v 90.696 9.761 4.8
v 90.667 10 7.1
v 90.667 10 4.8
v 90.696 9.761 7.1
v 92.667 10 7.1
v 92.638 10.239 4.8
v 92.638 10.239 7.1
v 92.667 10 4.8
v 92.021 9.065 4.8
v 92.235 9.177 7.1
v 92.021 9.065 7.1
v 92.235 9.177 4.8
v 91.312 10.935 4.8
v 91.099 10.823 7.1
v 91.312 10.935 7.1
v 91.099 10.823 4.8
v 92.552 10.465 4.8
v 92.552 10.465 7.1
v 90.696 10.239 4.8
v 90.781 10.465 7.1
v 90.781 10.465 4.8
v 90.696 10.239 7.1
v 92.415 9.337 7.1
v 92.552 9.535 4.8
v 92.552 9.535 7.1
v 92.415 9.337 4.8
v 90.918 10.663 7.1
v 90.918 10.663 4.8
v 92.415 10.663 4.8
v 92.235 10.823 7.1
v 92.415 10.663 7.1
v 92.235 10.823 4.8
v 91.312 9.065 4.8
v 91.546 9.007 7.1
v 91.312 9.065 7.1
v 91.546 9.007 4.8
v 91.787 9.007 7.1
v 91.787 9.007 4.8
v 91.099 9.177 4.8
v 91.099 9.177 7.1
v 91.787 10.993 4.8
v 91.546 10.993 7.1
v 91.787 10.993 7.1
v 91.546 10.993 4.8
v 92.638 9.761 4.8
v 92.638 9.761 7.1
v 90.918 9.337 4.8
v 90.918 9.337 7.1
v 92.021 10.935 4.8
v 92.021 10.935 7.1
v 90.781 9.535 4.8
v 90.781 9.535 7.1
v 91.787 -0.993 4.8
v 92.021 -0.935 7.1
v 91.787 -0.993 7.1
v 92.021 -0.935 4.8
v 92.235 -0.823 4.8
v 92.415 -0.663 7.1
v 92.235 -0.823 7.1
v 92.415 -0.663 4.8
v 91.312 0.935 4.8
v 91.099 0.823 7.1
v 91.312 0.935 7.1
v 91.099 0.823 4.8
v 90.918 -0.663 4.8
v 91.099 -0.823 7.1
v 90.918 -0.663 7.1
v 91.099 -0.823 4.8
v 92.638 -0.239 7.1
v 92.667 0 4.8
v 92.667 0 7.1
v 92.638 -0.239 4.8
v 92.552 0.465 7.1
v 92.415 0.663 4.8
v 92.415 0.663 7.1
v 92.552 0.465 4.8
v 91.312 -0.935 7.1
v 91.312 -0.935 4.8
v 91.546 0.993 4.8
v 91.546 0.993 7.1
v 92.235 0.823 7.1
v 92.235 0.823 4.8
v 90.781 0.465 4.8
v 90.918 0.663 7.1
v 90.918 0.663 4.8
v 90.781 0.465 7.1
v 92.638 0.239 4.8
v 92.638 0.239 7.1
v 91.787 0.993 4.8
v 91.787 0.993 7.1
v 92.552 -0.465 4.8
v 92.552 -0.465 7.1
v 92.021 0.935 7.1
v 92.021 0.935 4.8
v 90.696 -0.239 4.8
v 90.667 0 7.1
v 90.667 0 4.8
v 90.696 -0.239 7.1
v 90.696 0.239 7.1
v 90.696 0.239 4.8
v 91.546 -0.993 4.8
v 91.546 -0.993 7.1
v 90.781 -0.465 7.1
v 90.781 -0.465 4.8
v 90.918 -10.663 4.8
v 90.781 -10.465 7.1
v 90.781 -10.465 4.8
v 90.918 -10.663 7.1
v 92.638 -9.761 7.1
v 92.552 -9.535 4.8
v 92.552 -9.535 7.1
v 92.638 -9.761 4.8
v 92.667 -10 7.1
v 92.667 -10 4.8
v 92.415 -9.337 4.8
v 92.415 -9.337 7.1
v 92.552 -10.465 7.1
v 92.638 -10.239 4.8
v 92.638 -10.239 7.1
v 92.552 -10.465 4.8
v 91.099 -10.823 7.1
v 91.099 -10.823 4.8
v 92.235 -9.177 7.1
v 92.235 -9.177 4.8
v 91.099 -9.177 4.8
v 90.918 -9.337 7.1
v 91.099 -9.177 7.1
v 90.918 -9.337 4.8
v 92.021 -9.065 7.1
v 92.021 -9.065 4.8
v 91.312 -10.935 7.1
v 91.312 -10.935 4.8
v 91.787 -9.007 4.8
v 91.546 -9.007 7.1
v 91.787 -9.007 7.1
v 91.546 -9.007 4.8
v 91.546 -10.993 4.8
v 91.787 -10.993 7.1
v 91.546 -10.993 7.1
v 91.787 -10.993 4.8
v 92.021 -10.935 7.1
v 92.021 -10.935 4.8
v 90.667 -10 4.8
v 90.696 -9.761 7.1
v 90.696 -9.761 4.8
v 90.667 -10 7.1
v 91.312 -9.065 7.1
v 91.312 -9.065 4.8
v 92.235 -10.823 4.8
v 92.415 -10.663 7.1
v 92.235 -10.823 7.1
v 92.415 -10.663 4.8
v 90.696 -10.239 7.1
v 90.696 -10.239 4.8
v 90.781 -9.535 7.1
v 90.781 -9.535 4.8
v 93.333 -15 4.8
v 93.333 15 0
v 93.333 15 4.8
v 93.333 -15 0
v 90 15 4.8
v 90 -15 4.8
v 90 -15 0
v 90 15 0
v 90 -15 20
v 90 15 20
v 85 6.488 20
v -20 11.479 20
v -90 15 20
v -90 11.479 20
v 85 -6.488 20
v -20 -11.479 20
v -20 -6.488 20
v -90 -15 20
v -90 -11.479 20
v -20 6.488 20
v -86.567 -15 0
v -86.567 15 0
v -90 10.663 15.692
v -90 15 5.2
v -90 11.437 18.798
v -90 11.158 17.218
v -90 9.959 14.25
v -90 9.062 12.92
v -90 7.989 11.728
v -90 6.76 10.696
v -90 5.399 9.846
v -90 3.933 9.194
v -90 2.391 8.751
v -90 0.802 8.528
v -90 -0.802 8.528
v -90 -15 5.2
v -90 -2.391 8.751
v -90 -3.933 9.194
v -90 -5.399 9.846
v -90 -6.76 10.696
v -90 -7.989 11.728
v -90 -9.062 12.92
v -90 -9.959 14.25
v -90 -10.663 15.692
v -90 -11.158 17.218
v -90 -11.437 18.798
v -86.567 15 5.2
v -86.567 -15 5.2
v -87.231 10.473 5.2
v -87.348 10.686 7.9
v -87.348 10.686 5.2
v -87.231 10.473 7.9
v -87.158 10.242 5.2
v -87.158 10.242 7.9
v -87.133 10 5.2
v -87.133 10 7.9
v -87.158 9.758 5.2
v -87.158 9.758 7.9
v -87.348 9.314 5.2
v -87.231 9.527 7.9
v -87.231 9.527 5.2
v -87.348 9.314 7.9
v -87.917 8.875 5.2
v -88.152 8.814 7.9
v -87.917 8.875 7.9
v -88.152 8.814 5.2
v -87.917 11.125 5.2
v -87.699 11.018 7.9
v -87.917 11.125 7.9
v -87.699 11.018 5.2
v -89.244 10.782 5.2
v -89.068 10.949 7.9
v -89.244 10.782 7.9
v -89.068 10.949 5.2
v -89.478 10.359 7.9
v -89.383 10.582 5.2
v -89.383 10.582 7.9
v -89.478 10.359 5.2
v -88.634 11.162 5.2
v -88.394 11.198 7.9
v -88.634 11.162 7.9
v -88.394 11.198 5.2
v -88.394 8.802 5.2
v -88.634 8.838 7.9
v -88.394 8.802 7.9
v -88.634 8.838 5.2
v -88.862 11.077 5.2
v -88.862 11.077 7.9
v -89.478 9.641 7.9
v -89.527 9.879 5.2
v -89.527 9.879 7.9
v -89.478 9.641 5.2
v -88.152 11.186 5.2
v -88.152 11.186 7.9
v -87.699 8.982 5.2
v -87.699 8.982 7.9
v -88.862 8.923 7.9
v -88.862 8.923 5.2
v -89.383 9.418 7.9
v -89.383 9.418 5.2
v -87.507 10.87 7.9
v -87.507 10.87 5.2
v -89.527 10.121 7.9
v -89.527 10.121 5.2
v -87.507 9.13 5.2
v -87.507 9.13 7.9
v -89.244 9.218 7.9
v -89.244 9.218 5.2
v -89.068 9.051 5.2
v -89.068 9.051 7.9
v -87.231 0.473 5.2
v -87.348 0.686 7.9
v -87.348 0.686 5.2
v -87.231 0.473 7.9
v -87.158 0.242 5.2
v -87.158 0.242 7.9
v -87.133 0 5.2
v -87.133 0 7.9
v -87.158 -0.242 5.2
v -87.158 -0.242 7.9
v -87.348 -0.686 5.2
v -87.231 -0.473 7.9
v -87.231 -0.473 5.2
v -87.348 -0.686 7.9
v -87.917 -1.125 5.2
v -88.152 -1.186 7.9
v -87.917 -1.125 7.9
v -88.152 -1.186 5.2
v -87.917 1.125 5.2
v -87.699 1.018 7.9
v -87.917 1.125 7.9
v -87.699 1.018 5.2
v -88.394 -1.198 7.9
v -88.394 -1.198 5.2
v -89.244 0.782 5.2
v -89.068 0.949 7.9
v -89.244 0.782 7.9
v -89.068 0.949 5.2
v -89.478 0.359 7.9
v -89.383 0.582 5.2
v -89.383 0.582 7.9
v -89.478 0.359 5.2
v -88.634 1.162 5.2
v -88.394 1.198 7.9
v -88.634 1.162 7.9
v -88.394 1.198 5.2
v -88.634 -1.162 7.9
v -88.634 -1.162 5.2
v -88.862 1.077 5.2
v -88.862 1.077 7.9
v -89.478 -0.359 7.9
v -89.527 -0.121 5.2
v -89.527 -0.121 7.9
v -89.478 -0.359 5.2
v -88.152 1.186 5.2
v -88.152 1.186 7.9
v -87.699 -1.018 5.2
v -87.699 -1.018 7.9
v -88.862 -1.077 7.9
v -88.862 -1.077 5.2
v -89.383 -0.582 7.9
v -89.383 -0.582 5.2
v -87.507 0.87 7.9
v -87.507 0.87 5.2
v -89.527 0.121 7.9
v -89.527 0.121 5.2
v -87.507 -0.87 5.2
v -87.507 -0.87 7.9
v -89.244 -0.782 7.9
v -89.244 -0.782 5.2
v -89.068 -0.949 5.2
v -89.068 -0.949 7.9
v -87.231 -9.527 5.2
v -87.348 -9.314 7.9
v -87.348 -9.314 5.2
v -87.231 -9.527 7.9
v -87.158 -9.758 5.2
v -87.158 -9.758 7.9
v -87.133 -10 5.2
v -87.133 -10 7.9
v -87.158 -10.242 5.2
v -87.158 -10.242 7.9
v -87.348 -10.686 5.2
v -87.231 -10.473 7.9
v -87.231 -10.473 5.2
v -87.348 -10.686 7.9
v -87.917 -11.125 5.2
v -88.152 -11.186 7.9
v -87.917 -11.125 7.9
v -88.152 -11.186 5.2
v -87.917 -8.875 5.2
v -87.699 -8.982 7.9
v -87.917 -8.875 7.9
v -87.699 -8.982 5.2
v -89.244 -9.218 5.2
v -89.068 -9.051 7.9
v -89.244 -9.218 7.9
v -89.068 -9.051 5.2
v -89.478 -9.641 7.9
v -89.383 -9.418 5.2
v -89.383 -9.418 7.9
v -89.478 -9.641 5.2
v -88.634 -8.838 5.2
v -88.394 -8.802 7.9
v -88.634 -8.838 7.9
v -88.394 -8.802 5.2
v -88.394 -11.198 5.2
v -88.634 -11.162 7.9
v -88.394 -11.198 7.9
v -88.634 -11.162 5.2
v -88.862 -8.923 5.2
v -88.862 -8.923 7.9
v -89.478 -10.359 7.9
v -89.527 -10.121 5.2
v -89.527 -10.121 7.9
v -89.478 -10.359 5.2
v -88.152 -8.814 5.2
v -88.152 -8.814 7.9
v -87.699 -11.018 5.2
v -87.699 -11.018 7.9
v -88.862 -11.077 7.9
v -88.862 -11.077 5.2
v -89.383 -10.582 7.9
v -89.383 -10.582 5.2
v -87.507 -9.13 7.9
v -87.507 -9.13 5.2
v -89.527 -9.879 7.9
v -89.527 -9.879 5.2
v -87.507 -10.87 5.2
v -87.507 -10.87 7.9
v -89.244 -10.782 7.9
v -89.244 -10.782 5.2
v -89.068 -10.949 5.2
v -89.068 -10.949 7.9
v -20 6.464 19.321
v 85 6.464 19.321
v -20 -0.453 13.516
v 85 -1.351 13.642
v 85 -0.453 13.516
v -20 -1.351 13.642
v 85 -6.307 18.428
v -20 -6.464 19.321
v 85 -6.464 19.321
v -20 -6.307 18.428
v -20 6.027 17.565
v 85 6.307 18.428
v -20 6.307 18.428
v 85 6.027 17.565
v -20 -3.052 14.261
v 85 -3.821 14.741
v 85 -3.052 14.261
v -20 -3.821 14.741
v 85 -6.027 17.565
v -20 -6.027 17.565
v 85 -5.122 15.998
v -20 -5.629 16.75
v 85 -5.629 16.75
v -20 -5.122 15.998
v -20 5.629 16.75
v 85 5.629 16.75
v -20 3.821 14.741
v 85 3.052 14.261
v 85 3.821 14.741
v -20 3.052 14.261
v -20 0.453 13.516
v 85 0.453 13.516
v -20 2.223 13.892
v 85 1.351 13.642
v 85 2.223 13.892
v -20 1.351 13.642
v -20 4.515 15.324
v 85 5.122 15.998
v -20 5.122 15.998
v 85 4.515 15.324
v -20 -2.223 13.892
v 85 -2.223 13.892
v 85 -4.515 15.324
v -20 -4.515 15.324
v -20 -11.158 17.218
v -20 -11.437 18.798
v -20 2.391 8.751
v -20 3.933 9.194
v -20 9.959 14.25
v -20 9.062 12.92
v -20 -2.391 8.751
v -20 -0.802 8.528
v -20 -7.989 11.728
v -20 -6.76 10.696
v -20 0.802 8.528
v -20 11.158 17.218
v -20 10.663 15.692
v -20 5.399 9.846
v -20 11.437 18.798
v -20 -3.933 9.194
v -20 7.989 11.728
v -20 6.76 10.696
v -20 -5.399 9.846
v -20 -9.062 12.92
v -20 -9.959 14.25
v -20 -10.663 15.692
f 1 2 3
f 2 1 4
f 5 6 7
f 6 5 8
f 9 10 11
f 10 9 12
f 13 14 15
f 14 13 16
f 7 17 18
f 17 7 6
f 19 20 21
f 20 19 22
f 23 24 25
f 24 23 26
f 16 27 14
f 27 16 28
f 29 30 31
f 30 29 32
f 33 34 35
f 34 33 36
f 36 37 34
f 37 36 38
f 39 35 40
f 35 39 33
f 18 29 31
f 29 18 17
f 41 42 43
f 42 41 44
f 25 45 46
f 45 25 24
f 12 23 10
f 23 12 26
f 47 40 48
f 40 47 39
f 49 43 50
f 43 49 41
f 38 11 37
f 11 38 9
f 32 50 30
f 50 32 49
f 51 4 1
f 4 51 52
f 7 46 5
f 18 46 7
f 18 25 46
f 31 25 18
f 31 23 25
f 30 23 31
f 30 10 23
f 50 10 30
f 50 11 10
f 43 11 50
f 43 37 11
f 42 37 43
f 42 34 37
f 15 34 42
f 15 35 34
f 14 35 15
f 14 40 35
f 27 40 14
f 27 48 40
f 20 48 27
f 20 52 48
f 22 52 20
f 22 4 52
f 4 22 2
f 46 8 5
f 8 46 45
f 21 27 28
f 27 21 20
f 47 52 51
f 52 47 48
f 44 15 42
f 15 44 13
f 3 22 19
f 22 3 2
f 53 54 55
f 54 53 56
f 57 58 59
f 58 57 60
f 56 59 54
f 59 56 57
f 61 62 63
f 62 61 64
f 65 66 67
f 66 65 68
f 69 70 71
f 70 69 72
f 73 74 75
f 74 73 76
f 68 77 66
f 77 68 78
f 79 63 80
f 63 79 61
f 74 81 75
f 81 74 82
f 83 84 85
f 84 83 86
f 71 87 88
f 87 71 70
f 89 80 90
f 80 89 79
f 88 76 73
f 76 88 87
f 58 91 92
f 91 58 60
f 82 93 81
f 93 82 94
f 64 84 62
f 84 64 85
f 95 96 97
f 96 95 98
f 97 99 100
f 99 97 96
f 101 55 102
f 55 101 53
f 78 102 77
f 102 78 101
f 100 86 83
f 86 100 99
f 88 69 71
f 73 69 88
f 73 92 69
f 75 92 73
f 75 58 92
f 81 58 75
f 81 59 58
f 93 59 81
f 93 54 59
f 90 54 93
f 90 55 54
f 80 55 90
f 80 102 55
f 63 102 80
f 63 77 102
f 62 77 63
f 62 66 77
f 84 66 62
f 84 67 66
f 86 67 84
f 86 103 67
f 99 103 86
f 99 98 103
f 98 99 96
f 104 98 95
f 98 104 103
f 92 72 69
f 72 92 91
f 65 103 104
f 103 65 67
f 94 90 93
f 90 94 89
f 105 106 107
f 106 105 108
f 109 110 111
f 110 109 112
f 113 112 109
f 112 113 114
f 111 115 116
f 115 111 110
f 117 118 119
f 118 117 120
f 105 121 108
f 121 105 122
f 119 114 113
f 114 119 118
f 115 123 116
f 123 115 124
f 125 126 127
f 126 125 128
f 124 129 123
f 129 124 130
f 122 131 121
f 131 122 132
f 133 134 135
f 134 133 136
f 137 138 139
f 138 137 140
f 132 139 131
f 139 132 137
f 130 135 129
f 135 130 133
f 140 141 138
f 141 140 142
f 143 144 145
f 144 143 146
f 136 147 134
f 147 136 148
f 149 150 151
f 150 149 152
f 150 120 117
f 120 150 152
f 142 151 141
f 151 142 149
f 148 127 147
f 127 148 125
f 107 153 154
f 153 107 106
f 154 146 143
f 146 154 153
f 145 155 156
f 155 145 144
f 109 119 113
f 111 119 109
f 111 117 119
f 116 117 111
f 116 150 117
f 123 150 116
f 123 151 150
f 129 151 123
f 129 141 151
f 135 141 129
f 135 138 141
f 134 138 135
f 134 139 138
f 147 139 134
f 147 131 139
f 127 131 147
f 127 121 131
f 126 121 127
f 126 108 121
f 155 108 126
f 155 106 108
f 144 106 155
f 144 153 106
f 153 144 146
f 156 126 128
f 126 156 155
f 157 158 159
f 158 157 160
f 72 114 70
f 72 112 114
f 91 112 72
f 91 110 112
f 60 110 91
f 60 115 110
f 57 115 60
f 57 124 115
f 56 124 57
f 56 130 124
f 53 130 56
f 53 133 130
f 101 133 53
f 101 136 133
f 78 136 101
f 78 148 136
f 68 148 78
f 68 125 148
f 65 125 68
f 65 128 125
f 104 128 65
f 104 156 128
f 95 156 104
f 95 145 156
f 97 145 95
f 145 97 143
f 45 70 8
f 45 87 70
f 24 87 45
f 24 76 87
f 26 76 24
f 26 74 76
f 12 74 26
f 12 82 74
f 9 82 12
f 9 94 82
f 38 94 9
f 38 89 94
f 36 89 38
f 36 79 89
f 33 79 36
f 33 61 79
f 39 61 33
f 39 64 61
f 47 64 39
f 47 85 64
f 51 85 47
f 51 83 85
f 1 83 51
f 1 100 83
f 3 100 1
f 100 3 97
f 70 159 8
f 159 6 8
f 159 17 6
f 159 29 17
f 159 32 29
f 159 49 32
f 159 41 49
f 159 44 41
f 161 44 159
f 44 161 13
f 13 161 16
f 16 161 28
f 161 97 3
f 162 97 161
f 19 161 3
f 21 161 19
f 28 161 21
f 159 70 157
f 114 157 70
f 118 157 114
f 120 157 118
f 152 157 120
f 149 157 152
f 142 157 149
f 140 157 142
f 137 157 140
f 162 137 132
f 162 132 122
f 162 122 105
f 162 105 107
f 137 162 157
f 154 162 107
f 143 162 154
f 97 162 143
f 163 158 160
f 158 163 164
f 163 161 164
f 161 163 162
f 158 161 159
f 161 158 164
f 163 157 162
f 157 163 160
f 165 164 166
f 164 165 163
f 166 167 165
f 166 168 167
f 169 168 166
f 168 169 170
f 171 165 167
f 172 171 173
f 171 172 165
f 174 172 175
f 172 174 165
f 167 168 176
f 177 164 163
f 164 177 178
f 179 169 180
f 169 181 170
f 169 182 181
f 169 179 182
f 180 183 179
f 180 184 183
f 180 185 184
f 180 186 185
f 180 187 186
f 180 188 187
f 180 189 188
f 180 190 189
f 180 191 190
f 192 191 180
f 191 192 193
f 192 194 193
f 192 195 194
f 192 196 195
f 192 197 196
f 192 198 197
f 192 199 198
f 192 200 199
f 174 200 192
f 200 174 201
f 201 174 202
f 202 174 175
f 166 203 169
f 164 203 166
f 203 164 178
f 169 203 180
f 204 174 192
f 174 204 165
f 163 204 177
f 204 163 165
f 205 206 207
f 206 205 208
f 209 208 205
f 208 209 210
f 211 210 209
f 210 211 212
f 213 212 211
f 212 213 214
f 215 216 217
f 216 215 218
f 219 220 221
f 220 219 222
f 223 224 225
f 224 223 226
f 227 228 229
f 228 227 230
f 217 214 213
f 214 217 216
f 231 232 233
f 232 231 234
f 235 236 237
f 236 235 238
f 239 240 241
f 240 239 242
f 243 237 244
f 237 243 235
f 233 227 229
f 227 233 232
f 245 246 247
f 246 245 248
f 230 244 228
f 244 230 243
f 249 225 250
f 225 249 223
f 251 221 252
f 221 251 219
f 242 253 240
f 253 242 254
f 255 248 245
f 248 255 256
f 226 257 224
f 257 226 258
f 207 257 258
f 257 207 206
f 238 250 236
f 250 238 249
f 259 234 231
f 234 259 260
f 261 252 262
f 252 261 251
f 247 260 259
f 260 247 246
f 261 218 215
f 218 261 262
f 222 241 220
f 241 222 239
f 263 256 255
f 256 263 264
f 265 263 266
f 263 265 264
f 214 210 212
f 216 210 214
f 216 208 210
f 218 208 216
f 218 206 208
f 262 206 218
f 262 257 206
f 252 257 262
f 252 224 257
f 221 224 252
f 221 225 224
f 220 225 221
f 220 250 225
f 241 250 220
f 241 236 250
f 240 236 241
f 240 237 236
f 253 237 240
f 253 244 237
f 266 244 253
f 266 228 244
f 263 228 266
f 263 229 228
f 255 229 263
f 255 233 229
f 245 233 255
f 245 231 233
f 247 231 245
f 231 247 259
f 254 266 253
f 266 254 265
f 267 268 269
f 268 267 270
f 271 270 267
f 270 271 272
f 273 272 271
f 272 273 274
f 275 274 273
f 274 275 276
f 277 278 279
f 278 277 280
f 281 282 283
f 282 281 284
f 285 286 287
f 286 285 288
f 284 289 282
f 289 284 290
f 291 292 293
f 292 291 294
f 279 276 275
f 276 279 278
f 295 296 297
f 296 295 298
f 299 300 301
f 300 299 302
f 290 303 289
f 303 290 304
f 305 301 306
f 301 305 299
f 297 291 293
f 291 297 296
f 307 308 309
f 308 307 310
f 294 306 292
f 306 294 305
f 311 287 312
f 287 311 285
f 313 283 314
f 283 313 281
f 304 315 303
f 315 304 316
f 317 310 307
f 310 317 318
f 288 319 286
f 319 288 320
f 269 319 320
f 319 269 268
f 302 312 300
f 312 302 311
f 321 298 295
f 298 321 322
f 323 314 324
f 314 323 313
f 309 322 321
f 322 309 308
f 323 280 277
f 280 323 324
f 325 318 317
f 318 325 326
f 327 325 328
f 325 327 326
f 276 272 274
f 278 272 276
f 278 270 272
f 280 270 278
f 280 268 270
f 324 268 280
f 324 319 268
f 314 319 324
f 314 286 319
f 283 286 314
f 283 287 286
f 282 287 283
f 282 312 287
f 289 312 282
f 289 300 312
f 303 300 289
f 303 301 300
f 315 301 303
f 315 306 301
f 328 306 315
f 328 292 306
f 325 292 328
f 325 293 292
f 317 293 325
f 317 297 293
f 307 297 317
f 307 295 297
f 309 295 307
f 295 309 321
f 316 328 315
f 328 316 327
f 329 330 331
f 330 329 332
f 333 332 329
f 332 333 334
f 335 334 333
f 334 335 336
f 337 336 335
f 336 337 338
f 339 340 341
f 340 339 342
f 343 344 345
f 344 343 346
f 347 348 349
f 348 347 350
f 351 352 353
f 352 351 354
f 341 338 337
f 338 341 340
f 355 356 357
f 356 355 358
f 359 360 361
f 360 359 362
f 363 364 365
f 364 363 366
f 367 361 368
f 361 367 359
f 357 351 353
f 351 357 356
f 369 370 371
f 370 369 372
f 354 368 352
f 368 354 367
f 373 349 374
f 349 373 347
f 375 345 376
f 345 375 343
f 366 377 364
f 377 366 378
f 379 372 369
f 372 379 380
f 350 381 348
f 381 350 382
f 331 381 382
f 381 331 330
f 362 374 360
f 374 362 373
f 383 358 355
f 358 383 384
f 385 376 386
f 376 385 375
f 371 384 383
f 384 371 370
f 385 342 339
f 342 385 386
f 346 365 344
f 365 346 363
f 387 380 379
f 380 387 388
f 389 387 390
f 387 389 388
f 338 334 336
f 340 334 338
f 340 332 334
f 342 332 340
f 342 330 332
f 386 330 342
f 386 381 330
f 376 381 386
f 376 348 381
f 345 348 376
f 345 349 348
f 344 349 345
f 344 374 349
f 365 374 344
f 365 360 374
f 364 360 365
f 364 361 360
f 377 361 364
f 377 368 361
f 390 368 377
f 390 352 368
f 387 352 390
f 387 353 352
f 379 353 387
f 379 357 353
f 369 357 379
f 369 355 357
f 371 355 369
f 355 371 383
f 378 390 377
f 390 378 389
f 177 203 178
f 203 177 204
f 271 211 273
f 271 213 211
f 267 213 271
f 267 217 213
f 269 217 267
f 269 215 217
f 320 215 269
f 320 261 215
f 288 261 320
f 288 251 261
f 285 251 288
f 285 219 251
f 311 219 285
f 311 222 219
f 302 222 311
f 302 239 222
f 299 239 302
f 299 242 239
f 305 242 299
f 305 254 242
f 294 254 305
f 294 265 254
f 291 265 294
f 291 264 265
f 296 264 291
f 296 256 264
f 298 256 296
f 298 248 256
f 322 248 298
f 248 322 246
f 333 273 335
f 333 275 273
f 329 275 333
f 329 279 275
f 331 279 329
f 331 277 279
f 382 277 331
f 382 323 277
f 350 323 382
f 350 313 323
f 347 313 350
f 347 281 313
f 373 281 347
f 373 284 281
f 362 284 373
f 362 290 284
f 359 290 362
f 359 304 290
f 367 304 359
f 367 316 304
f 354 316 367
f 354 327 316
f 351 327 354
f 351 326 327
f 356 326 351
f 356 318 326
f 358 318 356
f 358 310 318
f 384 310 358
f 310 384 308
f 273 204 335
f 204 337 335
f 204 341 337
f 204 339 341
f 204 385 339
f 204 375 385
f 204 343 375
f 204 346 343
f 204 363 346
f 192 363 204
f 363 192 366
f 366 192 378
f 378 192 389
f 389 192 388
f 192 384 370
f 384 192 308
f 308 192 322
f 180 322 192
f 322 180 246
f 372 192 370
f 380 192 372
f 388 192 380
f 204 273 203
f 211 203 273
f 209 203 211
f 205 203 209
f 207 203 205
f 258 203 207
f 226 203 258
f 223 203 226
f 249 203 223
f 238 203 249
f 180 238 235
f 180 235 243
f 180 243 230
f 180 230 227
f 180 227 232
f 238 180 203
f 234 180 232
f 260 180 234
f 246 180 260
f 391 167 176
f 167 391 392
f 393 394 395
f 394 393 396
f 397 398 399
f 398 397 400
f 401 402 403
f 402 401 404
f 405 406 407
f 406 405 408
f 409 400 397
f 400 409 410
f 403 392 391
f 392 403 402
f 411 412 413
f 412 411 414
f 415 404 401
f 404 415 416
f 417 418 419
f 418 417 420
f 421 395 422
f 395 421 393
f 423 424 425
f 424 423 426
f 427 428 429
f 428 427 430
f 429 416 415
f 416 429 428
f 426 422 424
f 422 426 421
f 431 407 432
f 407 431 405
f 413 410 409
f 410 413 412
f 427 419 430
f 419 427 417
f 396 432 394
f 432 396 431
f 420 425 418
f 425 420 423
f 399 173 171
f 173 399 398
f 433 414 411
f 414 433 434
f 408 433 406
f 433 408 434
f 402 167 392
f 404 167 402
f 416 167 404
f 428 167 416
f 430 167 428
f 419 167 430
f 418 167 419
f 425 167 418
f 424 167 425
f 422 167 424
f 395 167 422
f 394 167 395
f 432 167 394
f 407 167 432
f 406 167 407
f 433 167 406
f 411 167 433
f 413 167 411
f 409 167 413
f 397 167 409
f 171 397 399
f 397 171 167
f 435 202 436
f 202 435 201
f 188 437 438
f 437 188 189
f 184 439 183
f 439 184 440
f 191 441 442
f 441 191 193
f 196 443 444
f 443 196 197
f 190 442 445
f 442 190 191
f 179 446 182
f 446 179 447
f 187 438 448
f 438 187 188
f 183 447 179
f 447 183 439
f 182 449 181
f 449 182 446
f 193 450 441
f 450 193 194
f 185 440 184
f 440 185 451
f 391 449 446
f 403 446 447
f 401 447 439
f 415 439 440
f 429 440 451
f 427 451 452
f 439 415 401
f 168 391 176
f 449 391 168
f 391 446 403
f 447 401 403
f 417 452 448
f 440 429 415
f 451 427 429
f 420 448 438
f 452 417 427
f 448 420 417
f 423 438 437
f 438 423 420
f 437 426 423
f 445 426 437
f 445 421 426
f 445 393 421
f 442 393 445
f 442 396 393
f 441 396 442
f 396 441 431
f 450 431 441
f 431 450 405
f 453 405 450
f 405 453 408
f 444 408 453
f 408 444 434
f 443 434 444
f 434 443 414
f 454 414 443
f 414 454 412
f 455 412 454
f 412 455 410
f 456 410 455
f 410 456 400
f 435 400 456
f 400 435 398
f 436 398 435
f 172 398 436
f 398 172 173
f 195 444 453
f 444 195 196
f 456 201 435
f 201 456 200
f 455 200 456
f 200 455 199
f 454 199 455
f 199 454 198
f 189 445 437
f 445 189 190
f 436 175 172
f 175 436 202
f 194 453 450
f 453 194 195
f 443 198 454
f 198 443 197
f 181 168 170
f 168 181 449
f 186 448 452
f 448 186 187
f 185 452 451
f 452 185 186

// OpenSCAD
// file: ../base.scad
// The x-axis has the connection to the other units
// There is one connection peg per x
// Minimum unit is x=1, y=1, z=1
// If you have x=1, then the x-axis will be extended 
// with 1/3 for the connectors 
// the female version will can still be used and therefore
// counted within the unit

/* [Setup Parameters] */
$fa = 8;
$fs = 0.25;


module base(x,y,z) {
    u = 10;
    t = u;

    width = u*x;
    depth = u*y;
    height = t*z;

    margin = 0.2;

    male_connection_d = 2;
    female_connection_d = male_connection_d+margin*2;
    connector_width = u/3;
    connector_height = t/2;

    module connector(width, height, cylinder_height, cylinder_d) {
        translate([0, 0, 0])
        union() {
            translate([0, 0, height/2])
            cube([width, depth, height], center=true);
            for (i = [1:1:y]) {
                translate([0, depth/2+u/2-(u)*i, height-0.1])
                cylinder(h=cylinder_height+0.1, d=cylinder_d);
            }
        }
    }

    module male_connector() {
        width = connector_width;
        height = connector_height-margin;
        cylinder_height = connector_height/2-margin;
        cylinder_d = male_connection_d;

        connector(width, height, cylinder_height, cylinder_d);
    }

    module inverted_female_connecor() {
        width = connector_width+margin;
        height = connector_height+margin;
        cylinder_height = connector_height/2+margin;
        cylinder_d = female_connection_d;

        connector(width, height, cylinder_height, cylinder_d);
    }

    difference() {
        union() {
            translate([0, 0, height/2])
            cube([width, depth, height], center=true);
            translate([width/2+connector_width/2, 0, 0])
            male_connector();
        }
        union() {
            translate([-width/2+connector_width/2, 0, 0])
            inverted_female_connecor();
        }
    }
}


//base(2,7,2);

module connector(y) {
    u = 10;
}
// main file
include <../base.scad>

xunits = 18;
yunits = 3;
zunits = 2;

difference() {
    base(xunits,yunits,zunits);

    translate([-40, 0, 20])
    #union() {
        translate([125, 0, 0])
        rotate([0,-90,0])
        cylinder(h=111, d=13);

        translate([20, 0, 0])
        rotate([0,-90,0])
        cylinder(h=60+10, d=23);
    }
}
